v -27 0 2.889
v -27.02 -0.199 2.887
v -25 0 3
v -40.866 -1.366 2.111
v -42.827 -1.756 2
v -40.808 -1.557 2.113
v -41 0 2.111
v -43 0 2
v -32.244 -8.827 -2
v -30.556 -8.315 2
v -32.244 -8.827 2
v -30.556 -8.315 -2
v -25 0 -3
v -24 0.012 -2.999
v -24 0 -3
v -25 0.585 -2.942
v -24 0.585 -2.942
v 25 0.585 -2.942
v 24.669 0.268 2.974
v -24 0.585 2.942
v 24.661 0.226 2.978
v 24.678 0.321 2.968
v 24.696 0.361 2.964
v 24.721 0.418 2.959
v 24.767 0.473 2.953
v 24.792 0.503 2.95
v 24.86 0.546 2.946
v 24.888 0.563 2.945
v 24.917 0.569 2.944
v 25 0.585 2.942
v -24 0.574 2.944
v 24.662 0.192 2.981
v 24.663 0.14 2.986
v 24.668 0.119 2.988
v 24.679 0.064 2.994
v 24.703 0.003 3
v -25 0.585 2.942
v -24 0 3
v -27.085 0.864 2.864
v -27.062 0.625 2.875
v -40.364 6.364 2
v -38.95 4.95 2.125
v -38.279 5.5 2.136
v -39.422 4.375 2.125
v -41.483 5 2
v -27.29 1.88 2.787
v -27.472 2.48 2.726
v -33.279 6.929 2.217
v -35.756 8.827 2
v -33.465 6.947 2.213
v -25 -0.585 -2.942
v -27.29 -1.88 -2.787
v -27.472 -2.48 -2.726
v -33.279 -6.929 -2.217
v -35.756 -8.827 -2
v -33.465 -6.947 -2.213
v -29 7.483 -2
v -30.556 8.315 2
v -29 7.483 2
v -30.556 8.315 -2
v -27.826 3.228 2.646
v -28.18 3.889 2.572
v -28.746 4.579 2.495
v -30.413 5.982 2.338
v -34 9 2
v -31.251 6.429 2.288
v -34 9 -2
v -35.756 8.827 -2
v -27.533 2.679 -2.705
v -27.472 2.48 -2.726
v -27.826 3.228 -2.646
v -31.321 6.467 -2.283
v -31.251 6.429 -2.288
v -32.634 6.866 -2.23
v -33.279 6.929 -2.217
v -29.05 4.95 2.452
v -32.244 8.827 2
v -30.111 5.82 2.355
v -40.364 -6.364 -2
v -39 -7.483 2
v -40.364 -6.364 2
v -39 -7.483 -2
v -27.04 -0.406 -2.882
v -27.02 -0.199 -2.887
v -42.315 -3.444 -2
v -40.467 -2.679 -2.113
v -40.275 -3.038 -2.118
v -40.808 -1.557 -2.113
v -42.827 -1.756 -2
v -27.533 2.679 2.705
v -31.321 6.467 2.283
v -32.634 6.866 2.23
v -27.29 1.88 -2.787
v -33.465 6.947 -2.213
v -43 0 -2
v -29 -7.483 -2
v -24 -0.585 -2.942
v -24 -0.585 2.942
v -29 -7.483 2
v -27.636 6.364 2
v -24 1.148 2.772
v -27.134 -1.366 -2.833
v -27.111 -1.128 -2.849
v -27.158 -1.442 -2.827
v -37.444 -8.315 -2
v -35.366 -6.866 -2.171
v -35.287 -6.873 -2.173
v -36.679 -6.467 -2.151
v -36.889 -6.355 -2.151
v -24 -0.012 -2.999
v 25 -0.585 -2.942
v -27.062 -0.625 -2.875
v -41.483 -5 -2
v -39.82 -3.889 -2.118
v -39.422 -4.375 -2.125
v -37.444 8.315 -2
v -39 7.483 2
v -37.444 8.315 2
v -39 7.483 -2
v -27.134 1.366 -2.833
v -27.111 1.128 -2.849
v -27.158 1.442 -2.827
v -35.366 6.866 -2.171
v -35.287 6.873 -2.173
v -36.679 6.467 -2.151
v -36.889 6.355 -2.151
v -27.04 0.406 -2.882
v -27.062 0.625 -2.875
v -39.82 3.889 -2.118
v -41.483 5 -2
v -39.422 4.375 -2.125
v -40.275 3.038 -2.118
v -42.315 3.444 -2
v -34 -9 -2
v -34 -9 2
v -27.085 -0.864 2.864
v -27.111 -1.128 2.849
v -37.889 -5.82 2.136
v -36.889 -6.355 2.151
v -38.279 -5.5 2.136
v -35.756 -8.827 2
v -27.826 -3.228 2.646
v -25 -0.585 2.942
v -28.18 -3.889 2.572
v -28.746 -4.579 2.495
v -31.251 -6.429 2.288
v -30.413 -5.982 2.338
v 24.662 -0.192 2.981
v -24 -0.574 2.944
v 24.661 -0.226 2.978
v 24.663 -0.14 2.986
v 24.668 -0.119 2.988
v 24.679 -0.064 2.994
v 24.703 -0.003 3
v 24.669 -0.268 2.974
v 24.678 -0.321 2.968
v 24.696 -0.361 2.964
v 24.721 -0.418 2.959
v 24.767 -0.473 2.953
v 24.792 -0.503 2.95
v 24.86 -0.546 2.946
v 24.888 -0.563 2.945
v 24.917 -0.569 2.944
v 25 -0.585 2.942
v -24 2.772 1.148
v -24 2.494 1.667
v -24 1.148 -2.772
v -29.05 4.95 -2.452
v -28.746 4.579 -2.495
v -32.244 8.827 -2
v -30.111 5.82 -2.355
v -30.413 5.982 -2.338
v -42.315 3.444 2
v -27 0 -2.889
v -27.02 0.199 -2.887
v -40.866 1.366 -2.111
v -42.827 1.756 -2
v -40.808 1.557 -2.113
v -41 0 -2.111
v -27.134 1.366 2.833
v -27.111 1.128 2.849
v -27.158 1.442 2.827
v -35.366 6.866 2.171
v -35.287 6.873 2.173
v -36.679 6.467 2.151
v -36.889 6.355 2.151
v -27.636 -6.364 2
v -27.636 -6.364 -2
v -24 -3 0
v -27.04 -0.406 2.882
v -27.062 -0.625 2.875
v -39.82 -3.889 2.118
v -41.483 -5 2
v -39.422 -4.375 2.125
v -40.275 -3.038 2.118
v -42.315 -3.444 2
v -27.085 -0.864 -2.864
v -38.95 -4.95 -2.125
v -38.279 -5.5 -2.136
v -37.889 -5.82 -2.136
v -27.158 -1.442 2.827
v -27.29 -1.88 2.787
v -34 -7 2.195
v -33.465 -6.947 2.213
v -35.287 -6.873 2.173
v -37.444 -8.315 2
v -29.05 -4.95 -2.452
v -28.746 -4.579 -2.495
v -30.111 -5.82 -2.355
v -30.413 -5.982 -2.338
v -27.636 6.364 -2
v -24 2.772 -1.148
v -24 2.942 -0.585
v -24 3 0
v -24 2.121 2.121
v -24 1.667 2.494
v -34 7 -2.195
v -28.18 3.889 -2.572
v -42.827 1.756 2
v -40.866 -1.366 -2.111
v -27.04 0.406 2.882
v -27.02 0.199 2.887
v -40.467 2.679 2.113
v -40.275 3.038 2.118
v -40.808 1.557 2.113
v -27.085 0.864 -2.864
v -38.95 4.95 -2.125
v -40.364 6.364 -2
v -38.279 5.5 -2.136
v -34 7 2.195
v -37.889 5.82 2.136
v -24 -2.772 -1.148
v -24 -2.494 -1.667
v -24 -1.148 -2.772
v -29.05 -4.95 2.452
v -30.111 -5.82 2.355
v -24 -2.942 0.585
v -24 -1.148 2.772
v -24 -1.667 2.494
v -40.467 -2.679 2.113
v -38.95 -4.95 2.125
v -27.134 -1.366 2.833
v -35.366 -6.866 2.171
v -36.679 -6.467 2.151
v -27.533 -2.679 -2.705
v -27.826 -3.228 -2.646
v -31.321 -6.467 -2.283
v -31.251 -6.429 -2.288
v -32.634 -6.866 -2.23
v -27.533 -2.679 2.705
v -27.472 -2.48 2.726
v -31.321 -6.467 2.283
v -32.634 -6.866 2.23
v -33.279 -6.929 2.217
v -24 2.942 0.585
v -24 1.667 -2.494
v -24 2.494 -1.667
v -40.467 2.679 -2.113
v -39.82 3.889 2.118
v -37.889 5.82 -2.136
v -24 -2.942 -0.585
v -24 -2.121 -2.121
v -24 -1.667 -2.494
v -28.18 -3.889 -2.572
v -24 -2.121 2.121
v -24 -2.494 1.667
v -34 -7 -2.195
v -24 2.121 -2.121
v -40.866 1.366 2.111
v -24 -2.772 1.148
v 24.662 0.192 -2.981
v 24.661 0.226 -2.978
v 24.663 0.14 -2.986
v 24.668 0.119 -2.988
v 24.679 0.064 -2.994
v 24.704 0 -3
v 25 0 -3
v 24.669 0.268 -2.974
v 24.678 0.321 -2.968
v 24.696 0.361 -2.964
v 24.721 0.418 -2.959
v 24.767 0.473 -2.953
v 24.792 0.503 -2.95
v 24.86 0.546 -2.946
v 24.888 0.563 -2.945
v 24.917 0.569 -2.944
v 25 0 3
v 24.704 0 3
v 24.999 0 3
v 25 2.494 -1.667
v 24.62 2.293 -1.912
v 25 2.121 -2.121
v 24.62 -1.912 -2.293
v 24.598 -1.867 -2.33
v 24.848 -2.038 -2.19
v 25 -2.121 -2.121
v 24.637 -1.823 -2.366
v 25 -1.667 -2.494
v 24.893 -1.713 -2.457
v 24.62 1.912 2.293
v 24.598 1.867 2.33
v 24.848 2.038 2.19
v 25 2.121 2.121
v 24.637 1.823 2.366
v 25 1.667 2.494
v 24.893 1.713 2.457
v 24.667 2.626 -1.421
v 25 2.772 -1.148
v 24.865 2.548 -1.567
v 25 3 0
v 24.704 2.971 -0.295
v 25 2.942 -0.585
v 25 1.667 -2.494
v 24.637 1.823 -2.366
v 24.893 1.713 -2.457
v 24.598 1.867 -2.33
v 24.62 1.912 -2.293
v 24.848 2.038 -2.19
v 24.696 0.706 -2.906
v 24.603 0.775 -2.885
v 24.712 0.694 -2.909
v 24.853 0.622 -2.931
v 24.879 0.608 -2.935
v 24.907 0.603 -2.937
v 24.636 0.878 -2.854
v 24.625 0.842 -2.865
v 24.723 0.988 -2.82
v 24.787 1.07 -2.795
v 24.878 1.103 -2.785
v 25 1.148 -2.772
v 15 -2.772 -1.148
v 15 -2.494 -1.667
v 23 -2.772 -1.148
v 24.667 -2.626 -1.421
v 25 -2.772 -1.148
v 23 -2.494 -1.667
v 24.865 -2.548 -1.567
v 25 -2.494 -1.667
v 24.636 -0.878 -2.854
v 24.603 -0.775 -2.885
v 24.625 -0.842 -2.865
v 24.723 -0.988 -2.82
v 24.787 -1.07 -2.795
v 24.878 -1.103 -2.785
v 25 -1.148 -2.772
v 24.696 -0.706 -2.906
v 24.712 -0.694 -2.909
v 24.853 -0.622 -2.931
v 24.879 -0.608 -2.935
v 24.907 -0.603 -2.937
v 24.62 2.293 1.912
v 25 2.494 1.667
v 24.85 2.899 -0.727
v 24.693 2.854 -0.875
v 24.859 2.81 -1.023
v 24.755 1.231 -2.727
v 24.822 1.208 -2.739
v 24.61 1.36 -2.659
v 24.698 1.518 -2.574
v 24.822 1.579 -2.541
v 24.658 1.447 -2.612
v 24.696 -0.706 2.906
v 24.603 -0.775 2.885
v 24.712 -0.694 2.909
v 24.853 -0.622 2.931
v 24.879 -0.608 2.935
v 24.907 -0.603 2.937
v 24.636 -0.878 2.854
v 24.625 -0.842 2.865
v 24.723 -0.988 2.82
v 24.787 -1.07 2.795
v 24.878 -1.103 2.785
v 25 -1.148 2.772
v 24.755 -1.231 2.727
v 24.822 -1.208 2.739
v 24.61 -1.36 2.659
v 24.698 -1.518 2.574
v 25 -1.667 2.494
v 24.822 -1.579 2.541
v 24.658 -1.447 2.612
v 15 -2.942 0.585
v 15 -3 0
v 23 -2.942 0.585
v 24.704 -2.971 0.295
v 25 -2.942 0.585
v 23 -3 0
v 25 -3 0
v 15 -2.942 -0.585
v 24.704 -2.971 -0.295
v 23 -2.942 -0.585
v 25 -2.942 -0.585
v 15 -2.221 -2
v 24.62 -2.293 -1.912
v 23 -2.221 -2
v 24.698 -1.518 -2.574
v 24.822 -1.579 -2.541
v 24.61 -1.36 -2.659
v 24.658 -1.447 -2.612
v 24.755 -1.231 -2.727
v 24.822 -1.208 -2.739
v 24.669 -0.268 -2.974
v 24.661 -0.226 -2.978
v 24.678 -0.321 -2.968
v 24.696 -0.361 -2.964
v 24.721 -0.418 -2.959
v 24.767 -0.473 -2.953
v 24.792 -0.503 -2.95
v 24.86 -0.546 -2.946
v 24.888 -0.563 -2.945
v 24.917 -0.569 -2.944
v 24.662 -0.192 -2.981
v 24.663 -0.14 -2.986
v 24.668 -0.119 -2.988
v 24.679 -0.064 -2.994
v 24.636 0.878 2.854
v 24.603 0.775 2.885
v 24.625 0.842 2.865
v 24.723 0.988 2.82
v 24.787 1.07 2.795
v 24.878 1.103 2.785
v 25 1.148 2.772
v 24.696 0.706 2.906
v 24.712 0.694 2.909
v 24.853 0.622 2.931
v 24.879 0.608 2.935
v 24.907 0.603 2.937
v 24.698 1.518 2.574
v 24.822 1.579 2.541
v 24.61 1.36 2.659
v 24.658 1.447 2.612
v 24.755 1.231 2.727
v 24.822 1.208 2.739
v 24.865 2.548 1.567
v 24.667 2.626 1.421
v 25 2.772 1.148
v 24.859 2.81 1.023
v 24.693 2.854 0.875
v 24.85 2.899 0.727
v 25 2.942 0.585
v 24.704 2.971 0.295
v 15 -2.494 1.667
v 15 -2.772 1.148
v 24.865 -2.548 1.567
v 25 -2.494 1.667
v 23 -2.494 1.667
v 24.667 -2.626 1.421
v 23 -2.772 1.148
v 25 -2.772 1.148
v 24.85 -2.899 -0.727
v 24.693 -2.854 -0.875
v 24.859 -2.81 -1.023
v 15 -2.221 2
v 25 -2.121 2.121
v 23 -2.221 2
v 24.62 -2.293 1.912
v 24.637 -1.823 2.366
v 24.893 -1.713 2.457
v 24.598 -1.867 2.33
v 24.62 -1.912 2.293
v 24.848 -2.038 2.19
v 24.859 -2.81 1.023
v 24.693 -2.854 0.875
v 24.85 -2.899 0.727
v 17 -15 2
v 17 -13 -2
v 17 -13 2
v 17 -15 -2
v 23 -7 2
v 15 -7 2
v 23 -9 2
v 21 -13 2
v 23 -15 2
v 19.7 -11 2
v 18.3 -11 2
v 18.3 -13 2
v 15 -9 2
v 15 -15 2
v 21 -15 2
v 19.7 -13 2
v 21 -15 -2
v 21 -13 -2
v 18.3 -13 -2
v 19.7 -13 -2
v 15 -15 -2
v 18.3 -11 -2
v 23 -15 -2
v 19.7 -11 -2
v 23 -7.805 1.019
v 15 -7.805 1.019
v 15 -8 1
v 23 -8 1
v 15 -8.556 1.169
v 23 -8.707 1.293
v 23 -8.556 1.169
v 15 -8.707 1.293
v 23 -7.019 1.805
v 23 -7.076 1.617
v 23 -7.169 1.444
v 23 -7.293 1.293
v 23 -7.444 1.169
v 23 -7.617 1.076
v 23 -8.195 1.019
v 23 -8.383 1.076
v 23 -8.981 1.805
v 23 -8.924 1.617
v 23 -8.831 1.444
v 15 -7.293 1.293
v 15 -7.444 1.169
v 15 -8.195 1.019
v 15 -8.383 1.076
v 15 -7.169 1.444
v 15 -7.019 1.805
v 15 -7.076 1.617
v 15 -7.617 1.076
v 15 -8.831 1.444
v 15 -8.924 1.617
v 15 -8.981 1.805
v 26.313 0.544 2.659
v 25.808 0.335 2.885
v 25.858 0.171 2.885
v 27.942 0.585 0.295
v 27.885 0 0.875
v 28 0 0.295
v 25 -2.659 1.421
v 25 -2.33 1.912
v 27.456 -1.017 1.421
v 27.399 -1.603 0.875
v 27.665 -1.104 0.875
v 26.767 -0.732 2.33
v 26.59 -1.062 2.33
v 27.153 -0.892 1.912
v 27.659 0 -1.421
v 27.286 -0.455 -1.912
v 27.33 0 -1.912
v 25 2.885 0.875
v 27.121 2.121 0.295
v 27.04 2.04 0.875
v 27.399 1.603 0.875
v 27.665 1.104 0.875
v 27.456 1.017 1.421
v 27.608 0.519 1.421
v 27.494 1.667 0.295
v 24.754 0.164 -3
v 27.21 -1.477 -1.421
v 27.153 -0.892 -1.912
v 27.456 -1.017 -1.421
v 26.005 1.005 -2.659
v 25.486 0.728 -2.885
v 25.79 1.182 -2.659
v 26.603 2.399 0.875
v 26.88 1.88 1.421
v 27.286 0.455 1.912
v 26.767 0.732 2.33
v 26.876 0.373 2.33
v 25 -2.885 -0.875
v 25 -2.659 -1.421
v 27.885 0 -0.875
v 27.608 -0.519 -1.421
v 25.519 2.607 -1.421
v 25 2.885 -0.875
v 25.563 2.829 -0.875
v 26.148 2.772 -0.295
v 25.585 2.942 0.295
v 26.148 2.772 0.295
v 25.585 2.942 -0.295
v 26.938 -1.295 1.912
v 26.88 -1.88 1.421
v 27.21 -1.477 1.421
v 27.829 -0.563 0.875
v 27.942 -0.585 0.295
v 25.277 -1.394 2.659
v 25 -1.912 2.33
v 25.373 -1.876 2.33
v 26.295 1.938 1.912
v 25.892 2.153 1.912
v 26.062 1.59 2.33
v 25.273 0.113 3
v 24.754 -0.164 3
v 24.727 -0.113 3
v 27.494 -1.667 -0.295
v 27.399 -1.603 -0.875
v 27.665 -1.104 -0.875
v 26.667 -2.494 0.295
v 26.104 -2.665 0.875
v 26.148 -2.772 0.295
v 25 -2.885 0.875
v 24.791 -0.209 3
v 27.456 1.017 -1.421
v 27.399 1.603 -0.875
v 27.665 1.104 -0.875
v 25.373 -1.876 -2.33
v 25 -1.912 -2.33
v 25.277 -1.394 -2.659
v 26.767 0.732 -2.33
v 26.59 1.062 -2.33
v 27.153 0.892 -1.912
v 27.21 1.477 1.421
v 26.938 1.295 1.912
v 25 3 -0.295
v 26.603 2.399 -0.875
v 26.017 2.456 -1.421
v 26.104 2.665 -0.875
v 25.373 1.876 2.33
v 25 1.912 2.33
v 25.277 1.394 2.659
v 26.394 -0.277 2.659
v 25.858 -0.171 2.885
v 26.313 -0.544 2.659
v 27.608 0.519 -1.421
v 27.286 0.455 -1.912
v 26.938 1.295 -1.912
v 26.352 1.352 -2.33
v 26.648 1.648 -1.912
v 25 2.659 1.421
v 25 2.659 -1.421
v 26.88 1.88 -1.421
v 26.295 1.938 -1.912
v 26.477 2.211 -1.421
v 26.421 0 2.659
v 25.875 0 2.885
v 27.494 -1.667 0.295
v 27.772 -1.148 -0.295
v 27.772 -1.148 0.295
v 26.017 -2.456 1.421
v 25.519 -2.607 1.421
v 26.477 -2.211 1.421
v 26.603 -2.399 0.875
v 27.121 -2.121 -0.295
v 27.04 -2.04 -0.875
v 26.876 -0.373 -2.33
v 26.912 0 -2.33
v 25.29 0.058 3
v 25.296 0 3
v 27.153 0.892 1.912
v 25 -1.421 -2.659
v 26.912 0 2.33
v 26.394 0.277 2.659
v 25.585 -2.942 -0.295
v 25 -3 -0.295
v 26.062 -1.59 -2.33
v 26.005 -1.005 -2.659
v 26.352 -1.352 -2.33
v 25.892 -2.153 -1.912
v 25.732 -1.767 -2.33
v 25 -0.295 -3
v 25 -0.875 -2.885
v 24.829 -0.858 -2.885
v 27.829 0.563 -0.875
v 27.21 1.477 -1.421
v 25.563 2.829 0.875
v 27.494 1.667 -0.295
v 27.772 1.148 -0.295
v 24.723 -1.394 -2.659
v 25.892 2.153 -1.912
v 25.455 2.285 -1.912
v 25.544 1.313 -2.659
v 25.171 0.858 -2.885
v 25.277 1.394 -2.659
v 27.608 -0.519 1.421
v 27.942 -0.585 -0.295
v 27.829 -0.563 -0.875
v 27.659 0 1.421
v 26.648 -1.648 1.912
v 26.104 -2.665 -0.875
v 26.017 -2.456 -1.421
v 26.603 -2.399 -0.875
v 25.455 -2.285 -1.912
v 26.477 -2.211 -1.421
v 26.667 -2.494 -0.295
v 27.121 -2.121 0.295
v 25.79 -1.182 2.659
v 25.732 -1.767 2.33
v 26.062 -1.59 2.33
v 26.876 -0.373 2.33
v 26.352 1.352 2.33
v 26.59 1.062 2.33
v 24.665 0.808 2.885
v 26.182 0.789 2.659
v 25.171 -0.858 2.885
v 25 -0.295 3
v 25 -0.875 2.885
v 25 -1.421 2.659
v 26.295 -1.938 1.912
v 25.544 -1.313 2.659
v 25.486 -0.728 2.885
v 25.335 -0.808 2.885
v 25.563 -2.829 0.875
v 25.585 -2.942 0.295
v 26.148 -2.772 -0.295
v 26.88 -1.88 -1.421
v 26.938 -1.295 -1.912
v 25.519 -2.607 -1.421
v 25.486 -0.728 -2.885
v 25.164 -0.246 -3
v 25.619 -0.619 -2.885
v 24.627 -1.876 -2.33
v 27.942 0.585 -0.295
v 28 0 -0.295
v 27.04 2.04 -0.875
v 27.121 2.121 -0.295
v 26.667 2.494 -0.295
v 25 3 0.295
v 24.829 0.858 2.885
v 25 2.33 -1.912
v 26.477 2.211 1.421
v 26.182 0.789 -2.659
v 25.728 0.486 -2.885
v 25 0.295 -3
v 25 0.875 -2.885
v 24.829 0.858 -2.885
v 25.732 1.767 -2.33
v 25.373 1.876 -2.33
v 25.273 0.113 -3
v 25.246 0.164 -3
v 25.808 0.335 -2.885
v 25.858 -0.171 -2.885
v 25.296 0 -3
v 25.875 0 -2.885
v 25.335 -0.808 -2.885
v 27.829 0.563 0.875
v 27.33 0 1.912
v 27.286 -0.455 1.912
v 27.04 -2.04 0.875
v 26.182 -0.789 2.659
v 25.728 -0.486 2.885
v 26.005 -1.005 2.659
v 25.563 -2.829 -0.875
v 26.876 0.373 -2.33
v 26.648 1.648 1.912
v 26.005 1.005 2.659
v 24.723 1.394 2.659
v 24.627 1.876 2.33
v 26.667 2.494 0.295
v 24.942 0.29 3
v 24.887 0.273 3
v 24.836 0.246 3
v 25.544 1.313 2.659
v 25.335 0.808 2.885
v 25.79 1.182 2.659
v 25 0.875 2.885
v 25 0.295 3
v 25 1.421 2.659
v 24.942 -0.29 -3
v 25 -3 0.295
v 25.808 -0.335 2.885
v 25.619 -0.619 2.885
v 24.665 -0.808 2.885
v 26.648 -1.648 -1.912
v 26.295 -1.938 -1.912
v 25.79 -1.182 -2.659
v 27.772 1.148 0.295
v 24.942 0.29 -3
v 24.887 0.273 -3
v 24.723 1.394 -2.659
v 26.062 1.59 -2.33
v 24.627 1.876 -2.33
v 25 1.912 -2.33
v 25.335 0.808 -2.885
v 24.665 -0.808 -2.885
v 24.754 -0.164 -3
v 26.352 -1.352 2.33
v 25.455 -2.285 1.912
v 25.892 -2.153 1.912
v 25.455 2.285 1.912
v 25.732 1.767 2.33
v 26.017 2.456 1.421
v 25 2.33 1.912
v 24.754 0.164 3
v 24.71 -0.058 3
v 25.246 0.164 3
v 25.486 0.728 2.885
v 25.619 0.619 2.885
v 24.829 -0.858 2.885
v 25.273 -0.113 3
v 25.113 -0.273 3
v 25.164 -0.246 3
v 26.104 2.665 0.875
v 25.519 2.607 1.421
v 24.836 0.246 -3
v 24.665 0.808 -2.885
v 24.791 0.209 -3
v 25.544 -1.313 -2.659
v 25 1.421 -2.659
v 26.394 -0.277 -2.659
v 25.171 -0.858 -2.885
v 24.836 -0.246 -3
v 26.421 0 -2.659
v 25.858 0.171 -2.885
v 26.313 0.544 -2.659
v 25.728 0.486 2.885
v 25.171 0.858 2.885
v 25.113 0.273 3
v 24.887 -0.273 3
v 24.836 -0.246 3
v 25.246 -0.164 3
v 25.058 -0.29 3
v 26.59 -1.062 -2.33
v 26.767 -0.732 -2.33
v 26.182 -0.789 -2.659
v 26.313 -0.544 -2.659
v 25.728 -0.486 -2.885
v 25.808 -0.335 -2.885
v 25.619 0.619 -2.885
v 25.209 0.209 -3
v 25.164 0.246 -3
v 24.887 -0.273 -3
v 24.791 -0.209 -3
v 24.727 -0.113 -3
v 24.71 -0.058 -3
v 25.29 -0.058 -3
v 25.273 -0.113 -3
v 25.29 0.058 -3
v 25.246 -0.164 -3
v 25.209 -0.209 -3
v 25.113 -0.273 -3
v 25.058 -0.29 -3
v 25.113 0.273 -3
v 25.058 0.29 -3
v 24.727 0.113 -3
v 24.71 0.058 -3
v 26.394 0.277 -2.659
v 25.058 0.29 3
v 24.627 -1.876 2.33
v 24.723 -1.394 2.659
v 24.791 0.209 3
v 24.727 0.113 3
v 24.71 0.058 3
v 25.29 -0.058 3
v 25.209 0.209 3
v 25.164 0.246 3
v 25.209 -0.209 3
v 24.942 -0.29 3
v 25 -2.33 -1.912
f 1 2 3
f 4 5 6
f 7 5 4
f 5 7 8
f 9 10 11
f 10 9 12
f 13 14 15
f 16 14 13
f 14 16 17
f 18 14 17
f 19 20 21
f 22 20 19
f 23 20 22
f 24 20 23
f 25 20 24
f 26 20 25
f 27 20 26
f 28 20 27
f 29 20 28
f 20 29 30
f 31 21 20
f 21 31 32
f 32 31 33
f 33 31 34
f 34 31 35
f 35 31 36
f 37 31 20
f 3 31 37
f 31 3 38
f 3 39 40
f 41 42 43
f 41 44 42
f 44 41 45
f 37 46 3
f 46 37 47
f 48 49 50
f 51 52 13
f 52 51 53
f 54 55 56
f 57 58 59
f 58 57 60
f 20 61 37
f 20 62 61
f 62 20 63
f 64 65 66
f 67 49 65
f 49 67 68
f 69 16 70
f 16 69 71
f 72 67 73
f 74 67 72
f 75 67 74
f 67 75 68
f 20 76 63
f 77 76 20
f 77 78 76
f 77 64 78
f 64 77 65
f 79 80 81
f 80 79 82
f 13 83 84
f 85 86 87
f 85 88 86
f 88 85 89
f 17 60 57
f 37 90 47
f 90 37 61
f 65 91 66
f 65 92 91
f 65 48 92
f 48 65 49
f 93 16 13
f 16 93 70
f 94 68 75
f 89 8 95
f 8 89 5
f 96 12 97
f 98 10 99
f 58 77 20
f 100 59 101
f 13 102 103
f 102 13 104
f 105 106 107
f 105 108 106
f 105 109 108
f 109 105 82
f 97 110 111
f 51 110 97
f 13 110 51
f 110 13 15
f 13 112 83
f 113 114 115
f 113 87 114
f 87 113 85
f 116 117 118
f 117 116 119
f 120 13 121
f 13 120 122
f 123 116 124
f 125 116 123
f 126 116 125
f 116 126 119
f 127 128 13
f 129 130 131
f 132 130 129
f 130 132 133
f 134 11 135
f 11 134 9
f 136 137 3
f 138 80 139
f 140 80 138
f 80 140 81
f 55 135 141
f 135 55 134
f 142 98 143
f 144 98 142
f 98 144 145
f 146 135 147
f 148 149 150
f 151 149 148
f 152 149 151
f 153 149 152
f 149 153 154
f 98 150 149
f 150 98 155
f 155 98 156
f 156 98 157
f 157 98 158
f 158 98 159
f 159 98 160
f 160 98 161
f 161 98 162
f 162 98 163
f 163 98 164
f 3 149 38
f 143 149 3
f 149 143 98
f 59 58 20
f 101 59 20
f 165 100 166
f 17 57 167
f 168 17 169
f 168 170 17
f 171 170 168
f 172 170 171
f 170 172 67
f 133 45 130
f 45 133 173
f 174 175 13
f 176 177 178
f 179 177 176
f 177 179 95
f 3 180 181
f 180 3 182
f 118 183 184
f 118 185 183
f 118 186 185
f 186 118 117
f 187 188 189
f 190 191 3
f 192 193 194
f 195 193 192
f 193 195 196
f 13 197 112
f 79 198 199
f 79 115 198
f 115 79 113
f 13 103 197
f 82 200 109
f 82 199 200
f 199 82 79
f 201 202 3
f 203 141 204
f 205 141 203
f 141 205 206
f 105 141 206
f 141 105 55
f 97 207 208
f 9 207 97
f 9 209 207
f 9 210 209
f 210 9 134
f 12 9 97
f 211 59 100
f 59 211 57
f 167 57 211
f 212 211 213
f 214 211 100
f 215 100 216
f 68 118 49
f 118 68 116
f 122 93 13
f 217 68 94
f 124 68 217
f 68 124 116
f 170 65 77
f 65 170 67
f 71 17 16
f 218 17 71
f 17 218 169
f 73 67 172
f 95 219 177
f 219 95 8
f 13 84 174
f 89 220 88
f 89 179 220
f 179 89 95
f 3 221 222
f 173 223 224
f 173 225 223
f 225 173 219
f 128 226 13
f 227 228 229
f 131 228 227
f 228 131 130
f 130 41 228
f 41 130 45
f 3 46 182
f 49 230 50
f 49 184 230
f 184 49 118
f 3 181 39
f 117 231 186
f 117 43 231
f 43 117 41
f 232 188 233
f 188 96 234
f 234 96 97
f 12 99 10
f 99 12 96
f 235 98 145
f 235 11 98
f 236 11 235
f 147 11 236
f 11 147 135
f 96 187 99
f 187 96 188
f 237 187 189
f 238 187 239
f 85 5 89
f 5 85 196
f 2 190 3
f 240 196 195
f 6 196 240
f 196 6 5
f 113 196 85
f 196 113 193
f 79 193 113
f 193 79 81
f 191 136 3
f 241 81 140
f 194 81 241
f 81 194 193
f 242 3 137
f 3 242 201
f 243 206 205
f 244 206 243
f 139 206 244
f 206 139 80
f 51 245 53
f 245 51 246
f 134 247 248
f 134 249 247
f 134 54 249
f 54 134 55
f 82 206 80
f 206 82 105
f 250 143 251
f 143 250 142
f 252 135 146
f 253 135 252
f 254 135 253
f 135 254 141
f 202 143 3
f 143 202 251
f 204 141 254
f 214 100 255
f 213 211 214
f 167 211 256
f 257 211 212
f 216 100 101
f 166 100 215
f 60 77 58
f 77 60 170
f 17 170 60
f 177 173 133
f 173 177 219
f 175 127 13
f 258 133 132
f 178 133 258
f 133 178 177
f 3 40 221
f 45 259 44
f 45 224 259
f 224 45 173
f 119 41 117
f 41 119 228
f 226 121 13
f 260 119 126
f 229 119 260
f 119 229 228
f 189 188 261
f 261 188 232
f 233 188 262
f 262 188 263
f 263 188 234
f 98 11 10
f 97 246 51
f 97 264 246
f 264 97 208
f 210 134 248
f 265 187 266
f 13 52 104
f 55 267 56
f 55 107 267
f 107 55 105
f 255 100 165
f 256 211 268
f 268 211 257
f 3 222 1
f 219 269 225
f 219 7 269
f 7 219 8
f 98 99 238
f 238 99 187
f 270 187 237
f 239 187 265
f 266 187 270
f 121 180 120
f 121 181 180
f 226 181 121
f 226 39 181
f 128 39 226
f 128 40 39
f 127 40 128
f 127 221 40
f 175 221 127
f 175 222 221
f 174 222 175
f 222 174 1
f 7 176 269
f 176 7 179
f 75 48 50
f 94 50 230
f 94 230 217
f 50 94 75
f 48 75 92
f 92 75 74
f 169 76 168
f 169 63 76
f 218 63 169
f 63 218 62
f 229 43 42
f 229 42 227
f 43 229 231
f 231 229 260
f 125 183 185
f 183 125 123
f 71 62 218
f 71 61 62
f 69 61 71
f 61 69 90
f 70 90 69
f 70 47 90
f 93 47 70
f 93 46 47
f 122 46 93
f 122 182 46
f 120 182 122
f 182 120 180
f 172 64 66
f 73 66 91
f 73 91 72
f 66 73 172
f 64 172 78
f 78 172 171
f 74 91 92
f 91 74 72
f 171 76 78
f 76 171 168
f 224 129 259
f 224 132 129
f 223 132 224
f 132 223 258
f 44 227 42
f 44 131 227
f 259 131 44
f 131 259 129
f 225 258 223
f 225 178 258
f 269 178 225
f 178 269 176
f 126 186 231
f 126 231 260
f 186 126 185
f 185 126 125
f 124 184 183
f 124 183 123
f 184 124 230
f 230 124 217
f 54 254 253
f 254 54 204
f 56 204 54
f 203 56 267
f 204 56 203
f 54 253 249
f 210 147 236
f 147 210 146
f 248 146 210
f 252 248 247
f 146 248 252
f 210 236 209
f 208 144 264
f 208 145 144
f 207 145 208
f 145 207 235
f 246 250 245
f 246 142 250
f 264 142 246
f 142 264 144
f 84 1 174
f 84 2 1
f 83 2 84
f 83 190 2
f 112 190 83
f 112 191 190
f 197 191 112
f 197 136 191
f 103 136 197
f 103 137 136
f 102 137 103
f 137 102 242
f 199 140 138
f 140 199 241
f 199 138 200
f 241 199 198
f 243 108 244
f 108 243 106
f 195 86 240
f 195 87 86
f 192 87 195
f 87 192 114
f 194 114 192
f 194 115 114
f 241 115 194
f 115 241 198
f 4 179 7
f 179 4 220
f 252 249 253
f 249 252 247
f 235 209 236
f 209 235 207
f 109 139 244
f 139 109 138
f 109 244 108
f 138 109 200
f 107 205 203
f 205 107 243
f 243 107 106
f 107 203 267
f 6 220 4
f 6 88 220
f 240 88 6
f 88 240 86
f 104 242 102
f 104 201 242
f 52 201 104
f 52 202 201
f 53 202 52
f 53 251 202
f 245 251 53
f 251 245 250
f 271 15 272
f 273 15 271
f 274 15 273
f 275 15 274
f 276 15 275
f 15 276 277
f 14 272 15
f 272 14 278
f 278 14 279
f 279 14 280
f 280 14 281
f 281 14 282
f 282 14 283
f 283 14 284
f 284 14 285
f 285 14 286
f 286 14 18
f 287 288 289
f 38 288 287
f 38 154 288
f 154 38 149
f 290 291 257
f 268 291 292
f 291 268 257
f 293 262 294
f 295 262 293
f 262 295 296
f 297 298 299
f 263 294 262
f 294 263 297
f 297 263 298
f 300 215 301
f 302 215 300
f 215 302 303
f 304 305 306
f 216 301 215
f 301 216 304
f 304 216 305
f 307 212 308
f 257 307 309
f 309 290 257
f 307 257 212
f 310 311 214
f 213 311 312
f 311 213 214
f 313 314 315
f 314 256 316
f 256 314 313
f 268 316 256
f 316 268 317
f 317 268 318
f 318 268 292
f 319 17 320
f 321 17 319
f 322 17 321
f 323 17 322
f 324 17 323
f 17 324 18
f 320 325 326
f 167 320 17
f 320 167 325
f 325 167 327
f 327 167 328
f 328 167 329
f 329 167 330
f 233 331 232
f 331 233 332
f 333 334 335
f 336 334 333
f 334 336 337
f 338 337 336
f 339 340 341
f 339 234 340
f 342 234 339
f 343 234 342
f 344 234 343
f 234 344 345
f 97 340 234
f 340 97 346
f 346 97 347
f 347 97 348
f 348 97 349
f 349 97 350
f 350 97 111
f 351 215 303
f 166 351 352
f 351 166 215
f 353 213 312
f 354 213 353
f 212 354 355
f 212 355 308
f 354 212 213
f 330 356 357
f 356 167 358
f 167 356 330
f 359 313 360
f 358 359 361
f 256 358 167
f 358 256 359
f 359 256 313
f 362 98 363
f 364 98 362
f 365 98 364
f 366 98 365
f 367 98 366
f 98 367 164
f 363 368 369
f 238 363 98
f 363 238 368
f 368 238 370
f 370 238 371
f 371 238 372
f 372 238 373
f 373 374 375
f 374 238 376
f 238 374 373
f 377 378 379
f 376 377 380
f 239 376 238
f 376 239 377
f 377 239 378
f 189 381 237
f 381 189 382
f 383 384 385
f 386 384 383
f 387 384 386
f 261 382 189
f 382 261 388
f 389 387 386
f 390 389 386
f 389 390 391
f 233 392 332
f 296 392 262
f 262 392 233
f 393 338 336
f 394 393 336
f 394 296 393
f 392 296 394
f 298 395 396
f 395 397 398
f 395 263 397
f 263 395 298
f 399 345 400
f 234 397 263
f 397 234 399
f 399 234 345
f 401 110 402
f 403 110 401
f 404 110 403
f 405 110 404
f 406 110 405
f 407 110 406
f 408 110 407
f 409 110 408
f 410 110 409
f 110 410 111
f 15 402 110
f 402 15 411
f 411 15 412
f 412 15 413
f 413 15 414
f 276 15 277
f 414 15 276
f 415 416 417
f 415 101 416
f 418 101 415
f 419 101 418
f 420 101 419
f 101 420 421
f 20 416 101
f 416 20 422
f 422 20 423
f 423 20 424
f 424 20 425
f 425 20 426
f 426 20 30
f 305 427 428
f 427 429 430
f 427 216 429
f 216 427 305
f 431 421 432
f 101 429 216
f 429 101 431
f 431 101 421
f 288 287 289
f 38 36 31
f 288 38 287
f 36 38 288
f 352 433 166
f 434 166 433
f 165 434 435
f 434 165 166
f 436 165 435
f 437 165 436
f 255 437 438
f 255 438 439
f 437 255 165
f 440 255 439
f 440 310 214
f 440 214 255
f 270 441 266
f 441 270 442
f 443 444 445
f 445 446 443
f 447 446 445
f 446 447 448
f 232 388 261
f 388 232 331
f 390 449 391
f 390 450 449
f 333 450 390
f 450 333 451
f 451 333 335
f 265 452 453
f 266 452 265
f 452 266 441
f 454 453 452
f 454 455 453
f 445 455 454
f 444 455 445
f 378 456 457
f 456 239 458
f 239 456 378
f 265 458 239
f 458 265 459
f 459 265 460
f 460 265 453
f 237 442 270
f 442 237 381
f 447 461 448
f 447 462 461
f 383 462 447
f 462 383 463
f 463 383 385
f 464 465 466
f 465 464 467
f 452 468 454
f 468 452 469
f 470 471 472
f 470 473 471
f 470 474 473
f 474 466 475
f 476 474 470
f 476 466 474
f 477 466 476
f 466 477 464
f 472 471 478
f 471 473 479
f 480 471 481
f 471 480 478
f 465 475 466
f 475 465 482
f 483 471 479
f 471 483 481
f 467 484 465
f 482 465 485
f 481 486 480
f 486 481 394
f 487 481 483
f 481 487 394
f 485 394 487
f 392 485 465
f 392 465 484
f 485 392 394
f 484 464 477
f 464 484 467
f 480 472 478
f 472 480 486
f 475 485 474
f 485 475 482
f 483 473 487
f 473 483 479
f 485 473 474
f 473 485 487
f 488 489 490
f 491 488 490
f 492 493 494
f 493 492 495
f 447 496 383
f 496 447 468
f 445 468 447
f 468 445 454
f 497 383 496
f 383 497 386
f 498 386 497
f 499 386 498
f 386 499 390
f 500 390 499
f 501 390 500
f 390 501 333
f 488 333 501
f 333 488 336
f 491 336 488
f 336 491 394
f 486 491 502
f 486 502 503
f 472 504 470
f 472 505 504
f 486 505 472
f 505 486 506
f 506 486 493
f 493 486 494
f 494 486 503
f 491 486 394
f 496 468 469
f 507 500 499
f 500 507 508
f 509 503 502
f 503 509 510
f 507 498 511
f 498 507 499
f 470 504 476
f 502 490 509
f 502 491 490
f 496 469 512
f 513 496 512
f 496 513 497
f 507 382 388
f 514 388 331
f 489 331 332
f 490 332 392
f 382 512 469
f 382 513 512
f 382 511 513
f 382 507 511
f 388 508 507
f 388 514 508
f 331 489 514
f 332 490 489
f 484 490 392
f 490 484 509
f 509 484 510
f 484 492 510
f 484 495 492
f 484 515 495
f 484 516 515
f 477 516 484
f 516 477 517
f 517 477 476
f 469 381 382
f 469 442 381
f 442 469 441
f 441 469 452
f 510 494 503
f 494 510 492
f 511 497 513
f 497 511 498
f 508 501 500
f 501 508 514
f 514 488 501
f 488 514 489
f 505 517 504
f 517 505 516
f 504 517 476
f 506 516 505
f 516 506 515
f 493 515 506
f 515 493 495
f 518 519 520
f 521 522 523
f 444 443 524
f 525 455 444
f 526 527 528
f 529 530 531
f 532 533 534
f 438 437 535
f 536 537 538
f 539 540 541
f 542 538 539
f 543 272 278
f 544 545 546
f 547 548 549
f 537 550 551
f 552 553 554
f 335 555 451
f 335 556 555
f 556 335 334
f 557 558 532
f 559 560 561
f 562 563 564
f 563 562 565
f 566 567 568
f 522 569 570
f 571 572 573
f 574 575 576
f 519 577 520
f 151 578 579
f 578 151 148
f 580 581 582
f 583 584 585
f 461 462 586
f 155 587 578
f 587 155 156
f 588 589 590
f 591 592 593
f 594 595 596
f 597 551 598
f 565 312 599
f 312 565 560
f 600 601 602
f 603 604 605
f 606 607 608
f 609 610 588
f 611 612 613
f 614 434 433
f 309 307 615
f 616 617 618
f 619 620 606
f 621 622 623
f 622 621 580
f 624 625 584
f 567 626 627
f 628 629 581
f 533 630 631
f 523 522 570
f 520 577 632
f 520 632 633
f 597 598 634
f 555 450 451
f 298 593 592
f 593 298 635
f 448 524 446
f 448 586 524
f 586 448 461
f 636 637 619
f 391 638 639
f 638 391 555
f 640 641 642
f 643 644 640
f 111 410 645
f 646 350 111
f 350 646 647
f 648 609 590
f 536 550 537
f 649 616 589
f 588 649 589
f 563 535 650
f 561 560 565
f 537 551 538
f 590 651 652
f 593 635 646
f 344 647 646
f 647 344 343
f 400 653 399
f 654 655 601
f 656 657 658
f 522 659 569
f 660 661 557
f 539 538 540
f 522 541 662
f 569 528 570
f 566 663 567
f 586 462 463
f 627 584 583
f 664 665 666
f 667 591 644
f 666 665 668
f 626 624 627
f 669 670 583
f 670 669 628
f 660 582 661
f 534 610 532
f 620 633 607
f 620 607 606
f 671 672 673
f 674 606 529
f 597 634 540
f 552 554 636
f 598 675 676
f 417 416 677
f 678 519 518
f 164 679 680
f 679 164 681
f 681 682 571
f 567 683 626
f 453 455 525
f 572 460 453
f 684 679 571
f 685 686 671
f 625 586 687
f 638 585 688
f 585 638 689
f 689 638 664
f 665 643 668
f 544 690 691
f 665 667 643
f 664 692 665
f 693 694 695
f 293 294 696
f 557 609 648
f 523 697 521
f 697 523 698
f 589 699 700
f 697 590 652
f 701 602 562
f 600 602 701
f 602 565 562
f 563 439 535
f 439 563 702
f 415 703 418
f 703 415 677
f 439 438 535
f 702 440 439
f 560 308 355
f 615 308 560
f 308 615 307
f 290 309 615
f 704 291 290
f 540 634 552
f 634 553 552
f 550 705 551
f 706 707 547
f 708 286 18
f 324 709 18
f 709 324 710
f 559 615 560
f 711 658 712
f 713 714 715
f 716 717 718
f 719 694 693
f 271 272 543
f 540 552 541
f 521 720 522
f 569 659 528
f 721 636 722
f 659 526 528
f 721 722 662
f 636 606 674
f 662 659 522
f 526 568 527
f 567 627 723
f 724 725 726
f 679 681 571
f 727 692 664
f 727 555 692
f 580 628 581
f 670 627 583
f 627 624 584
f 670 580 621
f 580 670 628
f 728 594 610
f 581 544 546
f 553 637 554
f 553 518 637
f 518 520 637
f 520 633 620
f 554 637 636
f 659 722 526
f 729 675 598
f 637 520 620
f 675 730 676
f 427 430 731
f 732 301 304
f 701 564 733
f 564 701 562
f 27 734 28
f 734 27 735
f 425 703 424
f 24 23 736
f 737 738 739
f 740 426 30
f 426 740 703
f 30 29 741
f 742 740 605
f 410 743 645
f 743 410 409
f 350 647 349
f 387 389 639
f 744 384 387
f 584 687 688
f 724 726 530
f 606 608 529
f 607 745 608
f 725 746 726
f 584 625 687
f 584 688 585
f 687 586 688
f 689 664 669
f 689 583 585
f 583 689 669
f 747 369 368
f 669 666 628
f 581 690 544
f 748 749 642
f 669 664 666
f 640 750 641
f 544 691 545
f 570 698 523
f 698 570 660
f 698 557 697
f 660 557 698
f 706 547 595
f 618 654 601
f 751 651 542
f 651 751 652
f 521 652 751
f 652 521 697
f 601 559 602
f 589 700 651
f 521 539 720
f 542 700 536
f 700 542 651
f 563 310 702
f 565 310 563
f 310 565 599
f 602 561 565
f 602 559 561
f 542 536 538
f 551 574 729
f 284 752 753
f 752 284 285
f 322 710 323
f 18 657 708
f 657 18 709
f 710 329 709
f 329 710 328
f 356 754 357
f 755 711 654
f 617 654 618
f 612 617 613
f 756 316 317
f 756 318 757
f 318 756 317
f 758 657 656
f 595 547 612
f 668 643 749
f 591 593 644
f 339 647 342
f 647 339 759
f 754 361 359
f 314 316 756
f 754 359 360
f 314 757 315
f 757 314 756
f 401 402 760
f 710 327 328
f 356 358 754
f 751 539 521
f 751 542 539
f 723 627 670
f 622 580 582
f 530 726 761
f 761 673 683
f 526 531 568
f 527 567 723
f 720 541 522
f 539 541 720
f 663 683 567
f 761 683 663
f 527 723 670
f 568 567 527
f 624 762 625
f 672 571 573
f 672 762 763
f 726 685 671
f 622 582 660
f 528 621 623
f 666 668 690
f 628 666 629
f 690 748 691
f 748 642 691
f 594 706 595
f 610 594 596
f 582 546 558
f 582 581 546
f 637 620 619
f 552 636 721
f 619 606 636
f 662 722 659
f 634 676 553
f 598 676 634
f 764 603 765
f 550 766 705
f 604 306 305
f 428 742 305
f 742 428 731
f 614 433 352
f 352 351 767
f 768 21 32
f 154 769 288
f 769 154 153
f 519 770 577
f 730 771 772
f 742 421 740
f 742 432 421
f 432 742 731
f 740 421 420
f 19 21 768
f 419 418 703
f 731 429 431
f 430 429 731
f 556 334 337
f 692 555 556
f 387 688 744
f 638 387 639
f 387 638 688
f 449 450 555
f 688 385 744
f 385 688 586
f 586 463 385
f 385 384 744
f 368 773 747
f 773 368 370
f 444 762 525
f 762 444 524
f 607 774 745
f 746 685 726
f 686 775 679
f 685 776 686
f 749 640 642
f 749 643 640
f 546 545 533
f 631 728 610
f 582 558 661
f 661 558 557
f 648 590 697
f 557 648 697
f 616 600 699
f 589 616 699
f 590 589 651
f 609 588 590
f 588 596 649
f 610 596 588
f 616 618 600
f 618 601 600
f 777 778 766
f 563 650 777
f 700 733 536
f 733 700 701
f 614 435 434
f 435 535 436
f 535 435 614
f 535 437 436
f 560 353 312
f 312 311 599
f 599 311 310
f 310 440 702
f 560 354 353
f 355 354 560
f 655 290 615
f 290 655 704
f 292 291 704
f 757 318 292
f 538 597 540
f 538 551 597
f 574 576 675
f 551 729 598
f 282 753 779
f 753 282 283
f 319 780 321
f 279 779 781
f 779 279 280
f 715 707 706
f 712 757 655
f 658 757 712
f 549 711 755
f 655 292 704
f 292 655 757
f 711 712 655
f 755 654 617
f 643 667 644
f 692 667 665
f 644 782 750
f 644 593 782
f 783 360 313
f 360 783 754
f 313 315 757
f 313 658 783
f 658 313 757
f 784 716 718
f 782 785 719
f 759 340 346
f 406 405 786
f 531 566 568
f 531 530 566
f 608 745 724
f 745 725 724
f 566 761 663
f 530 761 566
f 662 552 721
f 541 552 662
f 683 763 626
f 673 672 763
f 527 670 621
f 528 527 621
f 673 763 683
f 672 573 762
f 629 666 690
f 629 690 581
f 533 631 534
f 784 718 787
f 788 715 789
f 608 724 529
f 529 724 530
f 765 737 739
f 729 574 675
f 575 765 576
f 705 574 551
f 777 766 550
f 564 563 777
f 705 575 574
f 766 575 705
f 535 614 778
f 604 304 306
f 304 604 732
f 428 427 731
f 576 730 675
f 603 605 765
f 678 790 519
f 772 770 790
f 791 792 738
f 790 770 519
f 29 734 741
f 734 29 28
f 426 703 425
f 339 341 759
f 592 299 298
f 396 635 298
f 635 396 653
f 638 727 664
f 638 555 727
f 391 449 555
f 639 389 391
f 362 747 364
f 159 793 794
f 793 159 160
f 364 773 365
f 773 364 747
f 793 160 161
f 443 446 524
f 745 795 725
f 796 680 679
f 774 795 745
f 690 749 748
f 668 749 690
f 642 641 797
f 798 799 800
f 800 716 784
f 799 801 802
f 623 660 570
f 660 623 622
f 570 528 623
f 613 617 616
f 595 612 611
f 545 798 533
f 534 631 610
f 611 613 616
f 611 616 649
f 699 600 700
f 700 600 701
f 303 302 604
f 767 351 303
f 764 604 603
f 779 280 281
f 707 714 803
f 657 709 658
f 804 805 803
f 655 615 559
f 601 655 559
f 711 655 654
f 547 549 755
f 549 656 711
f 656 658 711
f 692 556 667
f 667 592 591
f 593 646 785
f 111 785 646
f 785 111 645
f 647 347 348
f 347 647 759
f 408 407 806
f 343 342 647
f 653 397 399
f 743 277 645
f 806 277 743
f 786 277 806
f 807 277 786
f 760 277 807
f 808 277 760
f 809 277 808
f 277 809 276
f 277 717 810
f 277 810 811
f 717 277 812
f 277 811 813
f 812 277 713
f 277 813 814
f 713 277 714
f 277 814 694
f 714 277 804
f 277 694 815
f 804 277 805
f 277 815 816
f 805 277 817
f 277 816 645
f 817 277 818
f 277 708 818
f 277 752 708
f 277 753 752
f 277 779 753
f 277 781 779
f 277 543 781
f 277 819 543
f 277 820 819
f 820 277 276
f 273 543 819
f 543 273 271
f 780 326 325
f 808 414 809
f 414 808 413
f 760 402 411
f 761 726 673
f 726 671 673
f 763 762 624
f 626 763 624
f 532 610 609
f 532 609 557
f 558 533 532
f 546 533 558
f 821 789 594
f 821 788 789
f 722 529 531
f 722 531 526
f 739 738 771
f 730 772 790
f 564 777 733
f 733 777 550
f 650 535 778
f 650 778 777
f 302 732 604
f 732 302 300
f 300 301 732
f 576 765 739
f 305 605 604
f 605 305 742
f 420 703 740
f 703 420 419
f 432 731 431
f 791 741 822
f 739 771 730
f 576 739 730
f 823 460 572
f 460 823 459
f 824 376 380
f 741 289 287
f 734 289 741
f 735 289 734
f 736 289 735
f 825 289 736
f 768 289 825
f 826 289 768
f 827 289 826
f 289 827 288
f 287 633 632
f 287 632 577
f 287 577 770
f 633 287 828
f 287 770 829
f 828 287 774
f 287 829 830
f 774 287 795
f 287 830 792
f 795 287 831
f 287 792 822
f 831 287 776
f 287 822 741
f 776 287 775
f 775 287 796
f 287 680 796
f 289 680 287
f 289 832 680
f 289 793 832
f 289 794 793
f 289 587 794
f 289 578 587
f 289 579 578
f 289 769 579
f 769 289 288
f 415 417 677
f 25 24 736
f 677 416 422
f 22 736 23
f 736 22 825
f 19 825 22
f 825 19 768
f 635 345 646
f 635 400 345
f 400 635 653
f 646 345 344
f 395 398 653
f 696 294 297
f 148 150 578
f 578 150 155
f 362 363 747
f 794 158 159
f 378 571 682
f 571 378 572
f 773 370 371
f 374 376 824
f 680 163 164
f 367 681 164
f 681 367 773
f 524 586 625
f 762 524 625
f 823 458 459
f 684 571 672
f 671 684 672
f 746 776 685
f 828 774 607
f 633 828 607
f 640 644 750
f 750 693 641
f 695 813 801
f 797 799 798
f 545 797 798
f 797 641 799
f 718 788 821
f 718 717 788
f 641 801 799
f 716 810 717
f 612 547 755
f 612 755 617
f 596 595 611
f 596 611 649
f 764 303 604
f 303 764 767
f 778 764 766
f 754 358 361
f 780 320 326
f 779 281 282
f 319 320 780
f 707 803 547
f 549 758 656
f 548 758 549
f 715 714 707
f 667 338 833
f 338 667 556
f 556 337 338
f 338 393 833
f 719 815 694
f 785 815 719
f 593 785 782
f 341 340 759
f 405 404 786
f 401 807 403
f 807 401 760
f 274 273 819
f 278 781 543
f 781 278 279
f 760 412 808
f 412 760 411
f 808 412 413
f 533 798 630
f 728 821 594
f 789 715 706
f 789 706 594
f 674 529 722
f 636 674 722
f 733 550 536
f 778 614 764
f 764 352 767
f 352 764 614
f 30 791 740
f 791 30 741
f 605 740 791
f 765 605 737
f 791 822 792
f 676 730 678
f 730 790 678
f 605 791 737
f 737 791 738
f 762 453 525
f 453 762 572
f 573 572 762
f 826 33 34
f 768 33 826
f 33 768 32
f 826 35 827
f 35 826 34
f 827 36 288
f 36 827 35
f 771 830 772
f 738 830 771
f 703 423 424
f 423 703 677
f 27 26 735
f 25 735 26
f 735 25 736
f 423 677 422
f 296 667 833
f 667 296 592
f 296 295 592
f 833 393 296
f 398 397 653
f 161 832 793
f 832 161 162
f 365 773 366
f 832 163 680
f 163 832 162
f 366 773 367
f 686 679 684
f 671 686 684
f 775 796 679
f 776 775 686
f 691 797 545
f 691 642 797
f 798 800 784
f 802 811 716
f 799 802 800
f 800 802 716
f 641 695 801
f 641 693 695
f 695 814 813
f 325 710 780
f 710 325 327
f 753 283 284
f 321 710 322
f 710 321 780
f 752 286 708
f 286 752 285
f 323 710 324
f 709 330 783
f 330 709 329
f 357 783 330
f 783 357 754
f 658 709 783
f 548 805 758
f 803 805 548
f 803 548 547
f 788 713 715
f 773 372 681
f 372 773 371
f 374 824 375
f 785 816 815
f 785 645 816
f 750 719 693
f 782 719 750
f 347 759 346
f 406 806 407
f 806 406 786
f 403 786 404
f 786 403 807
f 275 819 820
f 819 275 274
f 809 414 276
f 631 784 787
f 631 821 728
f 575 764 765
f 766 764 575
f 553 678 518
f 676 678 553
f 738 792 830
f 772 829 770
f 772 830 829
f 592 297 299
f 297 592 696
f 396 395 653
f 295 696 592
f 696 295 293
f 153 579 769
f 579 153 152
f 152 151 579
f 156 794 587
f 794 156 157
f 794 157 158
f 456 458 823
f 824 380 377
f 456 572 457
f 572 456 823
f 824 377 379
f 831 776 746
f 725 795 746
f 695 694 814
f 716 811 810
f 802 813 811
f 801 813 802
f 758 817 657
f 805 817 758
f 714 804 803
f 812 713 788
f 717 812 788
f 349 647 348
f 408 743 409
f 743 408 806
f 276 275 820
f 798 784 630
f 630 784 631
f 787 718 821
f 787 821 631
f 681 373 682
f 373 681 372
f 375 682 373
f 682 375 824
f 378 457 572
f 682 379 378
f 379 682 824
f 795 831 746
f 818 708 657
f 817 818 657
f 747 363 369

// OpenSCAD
include <relativity/relativity.scad>

$fn = 32;
pro = 0.02; // Protrusion value for CSG ops

// Shank or shaft
shaft_radius = 6 / 2;
shaft_length = 50;

// Handle or bow
bow_width = 18;
bow_height = 23;

bit_length = 8;
bit_depth = 12;
bit_thickness = 4;

// Cuts
cut_shallow_width = 4;
cut_deep_width = 1.4;
cut_depth = 2;

ward_radius = 2 / 2;
ward_depth = 1.5;
// Pozitie, de jos: 6, 2, 4
ward_pos_bottom = 6;

module handle() {
  // TODO Differed doesn't work
  difference() {
  hulled()
    rod(d=bow_width, h=bit_thickness)
    align([1,0,0])
    rod(r=shaft_radius, h=1, anchor=[-1,0,0], orientation=x);
  translate([-bit_thickness / 2,0,0])
  rod(d=bow_width - bit_thickness, h=10, $class="cuts");
  }
}

module bit() {
  differed("cuts")
    // Bit body
    box([bit_length, bit_depth + $parent_size.x / 2, bit_thickness], anchor=[0,1,0])
    // Cuts
    union() {
      align([0,-1,0])
      box([cut_shallow_width,cut_depth,bit_thickness], anchor=-y, $class="cuts")
      align([0,1,0])
      box([cut_deep_width,cut_depth,bit_thickness], anchor=-y);
      align([0,0,1])
      translate([0,-ward_radius/2,-1])
      // Alternate positioning from bit bottom
      // align([0,-1,1])
      // translate([0,ward_radius*2 + ward_pos_bottom,-1])
      rod(r=ward_radius, h=bit_length, orientation=x, $class="cuts");
    }
}

module key() {
  rod(h=shaft_length, r=shaft_radius, orientation=x)
  align([-1,0,0])
  // resize([0,bow_height,0])
  handle();
  translate([shaft_length / 2,0,0])
  align([1,0,0])
  ball(r=shaft_radius, anchor=[0,0,0])
  align([0,-1,0])
  translate([-$parent_size.x,$parent_size.x / 2,0])
  bit();
}

// Assembly
key();
